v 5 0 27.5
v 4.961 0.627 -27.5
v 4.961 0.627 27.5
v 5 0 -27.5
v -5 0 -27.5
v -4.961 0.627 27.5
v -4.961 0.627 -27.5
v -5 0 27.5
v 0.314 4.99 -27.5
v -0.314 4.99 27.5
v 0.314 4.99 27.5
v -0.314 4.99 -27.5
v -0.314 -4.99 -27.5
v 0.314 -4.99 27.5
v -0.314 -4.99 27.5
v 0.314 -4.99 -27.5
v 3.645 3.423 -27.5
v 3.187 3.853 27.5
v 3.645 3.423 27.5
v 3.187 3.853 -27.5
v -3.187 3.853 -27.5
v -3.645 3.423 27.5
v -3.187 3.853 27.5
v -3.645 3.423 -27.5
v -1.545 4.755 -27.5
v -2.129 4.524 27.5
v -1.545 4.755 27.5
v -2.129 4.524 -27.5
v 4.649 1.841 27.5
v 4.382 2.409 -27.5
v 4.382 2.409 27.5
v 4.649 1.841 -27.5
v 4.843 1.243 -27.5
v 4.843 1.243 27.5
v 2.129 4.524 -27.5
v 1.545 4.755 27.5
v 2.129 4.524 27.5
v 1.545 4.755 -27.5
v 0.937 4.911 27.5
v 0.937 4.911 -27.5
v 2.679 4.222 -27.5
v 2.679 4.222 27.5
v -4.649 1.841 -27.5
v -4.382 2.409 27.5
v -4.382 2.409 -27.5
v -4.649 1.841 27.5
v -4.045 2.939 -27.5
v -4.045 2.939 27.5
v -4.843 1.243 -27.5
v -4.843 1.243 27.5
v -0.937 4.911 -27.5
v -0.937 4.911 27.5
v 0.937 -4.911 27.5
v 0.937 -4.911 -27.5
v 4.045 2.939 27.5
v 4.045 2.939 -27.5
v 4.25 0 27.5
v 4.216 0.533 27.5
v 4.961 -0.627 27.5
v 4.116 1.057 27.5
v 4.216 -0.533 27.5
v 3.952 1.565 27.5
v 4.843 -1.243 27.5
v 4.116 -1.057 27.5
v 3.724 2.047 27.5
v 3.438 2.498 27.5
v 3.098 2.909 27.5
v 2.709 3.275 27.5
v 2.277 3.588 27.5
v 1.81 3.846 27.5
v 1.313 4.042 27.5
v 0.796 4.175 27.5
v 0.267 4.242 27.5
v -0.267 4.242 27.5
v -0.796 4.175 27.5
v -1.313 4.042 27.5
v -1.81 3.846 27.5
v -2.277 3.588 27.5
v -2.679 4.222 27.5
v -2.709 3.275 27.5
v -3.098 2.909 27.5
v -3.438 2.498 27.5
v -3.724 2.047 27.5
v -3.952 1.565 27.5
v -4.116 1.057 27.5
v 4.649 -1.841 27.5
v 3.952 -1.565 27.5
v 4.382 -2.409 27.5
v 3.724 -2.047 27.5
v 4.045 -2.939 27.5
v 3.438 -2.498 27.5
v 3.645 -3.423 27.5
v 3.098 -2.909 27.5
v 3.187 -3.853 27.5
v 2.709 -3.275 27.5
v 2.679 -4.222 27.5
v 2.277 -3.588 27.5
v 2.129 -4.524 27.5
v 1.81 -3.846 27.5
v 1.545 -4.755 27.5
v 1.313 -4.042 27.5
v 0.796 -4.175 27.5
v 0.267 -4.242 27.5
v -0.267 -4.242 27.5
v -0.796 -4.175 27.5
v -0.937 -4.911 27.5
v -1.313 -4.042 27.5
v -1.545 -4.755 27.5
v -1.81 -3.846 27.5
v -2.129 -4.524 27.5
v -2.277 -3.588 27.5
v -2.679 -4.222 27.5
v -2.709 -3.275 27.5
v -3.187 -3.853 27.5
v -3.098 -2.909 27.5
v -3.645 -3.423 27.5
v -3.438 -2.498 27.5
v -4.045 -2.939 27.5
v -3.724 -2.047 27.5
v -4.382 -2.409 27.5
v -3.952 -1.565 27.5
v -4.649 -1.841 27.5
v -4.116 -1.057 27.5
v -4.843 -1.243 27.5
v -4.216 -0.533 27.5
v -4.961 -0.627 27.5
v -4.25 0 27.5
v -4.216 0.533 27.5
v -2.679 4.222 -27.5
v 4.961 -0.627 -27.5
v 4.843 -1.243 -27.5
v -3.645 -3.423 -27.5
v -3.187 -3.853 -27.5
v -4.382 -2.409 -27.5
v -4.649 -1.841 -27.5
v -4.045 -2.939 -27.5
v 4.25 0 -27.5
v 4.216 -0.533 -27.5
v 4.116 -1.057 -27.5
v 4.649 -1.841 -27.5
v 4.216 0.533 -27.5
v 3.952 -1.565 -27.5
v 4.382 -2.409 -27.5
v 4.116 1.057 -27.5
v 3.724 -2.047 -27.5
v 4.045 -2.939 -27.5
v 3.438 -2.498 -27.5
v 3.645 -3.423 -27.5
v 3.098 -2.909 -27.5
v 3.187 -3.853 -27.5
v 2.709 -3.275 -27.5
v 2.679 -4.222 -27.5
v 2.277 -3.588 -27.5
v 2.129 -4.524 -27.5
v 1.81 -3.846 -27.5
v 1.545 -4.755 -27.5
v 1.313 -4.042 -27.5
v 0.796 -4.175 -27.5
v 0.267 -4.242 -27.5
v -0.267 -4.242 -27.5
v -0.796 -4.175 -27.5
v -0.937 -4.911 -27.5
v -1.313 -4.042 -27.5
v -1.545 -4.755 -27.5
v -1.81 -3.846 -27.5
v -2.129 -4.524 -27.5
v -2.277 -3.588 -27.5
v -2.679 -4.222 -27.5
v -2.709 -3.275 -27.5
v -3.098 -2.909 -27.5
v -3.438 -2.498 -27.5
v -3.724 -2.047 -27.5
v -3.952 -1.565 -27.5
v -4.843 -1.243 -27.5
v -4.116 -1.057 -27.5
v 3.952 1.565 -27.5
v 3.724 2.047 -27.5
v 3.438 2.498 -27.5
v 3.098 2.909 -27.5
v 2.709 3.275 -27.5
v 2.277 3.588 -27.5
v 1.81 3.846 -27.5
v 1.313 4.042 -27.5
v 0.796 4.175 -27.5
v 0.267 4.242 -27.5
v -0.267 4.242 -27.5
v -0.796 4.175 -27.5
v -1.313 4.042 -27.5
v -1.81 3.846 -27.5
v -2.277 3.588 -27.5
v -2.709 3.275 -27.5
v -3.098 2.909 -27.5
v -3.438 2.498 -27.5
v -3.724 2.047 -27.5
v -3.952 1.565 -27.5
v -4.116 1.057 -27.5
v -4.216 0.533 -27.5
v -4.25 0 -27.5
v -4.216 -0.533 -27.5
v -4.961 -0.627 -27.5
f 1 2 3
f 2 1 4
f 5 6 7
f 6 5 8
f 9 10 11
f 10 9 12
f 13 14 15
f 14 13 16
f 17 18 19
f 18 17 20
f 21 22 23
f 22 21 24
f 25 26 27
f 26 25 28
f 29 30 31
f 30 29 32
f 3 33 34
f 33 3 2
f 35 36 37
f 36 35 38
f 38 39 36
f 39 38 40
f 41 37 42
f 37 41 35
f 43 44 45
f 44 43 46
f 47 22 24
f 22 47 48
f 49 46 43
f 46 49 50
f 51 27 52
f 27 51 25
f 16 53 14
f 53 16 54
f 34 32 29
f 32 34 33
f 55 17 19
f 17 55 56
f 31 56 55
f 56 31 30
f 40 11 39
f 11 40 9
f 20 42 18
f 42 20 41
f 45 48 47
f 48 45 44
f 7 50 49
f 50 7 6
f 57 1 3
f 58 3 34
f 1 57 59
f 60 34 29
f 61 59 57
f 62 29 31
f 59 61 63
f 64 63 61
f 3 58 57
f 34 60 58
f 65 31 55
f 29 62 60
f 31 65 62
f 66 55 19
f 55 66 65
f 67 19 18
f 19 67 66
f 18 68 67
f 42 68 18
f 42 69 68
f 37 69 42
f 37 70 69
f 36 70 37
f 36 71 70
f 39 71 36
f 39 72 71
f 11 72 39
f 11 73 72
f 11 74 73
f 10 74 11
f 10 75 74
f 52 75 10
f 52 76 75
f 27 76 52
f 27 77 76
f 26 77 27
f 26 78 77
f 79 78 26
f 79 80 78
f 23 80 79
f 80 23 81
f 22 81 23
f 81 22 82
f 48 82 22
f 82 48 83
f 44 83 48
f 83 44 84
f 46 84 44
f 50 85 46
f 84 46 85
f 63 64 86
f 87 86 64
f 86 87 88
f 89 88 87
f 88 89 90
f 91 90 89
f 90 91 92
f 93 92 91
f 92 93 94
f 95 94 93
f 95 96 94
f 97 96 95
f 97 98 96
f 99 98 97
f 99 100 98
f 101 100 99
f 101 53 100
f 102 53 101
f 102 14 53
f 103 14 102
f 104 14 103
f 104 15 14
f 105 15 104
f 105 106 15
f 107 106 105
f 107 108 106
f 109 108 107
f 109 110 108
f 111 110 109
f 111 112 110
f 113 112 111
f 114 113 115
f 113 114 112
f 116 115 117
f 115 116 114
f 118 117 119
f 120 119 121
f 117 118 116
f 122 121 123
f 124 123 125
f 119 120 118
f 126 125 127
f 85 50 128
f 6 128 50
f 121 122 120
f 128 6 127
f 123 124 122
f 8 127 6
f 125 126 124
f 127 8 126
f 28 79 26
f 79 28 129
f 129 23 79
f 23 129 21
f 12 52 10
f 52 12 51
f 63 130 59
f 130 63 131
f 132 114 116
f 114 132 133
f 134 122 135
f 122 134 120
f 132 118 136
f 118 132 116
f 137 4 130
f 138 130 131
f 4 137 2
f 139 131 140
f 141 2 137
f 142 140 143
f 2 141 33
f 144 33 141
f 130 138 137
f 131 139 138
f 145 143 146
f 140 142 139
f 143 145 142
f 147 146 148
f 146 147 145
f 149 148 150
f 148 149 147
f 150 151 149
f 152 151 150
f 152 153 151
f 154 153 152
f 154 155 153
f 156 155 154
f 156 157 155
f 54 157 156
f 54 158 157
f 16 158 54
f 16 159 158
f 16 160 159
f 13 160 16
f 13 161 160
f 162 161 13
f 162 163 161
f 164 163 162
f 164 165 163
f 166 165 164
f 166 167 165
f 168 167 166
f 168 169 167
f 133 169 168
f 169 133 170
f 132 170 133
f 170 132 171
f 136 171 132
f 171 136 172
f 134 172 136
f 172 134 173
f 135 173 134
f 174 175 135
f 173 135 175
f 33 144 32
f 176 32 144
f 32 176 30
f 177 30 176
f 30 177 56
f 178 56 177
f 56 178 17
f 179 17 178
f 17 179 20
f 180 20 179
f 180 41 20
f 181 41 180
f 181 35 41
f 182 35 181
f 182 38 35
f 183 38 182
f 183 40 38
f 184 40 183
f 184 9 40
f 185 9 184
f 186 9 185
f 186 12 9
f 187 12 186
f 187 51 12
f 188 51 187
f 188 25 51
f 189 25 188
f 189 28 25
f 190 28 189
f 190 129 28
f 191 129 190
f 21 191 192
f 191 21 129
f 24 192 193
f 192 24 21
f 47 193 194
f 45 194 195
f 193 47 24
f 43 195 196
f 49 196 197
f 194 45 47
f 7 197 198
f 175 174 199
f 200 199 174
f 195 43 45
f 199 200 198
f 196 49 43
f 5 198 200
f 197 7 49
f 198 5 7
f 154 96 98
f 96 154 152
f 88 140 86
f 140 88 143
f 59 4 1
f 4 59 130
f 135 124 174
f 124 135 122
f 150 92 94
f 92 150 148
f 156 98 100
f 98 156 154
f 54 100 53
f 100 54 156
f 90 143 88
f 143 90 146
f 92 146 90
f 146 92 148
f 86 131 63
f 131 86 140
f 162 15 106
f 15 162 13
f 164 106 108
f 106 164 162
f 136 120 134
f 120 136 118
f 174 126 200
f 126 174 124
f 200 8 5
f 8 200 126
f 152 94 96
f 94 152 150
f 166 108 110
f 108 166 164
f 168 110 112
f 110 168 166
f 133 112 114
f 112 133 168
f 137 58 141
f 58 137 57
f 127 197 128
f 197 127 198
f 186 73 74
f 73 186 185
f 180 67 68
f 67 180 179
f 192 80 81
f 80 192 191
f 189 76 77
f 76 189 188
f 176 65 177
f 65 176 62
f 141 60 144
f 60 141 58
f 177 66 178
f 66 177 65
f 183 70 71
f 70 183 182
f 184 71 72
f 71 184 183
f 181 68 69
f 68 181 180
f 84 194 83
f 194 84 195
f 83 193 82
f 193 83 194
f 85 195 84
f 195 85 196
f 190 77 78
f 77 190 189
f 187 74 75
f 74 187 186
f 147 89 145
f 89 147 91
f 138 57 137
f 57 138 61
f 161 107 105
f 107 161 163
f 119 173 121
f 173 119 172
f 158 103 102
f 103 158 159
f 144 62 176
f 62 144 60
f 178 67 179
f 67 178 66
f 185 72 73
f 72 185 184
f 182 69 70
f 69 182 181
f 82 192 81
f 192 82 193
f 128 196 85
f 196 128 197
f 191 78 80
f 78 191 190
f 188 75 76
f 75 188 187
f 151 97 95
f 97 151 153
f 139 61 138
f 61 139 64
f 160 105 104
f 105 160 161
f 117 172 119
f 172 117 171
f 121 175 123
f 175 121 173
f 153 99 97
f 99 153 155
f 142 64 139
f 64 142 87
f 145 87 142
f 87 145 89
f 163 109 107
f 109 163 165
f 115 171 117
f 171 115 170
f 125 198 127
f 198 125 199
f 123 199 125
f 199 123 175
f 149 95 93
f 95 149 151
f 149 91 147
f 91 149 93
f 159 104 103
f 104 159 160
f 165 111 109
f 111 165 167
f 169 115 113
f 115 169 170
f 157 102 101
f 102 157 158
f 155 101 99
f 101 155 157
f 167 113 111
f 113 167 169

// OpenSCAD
$fn = 50;


difference() {
	union() {
		translate(v = [0, 0, -27.5000000000]) {
			cylinder(h = 55, r = 5.0000000000);
		}
	}
	union() {
		translate(v = [0, 0, -100.0000000000]) {
			cylinder(h = 200, r = 4.2500000000);
		}
	}
}
